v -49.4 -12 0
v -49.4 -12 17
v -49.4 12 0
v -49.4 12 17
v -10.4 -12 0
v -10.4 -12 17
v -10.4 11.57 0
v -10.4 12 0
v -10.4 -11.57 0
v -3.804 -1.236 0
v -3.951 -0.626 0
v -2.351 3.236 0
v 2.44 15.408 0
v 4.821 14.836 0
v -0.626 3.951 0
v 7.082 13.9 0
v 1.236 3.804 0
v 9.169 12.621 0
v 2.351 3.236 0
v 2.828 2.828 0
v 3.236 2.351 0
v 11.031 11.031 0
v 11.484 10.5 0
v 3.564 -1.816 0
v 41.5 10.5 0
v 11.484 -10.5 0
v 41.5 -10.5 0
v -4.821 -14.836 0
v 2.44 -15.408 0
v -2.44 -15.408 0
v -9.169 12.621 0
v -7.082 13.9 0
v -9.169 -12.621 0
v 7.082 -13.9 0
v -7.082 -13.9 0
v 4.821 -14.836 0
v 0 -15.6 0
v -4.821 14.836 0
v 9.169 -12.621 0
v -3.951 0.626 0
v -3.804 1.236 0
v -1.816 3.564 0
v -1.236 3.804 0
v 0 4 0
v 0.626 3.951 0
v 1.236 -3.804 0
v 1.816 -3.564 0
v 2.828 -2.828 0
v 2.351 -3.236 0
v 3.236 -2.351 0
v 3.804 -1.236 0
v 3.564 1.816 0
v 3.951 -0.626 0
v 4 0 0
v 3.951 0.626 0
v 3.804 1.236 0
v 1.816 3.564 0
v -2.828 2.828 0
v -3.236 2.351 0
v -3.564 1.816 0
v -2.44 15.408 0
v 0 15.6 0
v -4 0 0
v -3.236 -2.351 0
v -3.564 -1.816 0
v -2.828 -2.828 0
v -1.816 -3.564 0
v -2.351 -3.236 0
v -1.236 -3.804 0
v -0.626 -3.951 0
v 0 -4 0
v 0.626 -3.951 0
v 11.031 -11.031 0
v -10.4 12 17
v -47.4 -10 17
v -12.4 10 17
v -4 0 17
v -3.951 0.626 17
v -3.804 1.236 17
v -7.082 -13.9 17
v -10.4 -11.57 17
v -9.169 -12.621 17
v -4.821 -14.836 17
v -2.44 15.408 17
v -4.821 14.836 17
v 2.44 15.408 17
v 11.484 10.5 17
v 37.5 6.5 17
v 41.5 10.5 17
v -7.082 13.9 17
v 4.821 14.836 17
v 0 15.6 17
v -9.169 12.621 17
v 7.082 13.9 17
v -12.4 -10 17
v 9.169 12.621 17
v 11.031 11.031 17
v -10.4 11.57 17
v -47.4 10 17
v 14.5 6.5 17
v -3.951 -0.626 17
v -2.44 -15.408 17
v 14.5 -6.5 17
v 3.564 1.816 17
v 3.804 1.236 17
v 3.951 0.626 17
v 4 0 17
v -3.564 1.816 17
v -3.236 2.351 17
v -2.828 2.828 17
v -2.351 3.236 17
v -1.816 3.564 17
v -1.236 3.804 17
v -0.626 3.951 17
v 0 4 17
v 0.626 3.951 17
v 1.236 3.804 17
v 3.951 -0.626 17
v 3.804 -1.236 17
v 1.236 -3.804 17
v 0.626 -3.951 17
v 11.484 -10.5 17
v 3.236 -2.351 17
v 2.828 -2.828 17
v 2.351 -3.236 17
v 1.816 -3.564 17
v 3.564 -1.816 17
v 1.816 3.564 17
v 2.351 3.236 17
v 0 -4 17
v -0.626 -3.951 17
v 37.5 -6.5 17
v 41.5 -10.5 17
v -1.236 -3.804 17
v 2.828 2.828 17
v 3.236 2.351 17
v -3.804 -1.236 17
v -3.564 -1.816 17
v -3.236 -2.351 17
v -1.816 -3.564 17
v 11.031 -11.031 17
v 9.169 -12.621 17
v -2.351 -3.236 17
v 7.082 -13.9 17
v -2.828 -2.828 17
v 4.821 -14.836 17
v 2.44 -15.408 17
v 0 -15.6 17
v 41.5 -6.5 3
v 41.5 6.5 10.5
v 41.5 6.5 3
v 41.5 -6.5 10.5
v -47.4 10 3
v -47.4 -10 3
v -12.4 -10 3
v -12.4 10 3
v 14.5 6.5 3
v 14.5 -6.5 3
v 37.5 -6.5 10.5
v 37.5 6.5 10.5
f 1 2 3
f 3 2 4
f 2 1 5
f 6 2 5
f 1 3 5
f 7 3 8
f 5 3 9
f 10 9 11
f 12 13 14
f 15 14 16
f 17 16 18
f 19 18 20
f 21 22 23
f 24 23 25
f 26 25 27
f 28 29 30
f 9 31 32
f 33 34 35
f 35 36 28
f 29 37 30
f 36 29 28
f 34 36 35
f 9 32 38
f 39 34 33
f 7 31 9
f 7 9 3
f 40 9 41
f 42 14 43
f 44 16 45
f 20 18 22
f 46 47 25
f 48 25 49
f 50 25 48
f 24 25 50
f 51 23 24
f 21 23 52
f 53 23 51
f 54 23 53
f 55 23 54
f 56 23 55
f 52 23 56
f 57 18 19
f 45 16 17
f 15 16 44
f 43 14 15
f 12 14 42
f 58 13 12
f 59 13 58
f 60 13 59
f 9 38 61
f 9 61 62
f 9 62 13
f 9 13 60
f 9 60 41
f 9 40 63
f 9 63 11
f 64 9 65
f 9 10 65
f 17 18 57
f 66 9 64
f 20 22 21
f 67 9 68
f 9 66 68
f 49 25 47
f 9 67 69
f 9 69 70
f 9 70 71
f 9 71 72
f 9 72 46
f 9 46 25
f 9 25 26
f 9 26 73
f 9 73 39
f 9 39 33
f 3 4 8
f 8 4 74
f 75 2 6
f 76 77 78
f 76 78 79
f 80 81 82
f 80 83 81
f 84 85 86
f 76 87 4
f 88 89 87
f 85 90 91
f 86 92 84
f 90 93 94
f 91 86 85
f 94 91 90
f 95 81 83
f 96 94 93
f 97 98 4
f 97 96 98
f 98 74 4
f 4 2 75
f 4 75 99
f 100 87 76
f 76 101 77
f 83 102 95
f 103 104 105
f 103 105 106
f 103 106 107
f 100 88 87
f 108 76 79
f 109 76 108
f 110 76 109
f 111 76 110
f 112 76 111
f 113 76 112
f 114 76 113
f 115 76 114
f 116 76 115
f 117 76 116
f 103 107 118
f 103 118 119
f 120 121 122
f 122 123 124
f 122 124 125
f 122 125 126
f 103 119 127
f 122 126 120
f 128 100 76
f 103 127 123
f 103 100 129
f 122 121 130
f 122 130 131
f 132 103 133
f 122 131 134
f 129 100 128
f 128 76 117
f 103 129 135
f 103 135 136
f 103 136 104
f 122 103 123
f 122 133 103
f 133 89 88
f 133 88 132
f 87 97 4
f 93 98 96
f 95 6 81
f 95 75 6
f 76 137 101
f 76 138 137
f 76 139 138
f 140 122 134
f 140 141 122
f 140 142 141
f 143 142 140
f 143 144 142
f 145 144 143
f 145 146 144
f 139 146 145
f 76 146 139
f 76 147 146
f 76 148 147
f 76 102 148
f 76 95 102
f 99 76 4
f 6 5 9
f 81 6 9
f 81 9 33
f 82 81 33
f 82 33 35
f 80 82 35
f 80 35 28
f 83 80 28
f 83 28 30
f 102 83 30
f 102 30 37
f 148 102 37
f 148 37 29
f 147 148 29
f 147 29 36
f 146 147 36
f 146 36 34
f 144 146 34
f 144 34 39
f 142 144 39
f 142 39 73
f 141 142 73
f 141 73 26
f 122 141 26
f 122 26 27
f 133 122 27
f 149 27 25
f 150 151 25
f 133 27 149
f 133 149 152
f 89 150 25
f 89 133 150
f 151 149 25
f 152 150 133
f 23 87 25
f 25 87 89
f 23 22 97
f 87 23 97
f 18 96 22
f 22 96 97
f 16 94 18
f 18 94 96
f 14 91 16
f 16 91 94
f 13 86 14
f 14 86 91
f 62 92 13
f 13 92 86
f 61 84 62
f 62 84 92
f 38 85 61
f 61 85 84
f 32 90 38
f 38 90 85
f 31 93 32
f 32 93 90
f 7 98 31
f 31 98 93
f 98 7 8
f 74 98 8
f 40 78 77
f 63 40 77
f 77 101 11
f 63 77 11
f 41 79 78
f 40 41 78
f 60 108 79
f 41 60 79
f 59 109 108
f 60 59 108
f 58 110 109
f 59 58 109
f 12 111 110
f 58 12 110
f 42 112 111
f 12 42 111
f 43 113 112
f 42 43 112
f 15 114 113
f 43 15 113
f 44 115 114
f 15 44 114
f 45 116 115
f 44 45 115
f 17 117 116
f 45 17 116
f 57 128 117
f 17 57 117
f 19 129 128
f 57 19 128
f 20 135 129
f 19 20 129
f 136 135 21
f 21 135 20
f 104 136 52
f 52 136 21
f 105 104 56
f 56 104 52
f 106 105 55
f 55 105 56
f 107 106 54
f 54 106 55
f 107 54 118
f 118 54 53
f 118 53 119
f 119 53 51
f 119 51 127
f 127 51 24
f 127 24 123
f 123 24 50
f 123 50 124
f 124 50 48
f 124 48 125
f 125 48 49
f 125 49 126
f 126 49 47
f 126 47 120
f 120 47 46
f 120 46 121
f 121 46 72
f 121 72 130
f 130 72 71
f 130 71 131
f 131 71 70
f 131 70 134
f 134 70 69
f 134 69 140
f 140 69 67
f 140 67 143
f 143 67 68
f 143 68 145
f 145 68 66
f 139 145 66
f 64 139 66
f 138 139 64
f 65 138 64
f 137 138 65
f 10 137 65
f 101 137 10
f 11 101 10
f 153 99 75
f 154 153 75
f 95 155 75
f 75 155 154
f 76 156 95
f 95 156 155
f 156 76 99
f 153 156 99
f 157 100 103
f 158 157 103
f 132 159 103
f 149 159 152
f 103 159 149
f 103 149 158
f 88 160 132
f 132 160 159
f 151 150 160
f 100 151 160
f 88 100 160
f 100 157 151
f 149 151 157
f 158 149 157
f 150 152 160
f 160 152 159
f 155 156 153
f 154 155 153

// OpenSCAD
module UltraSoundBase() {
  // box dimensions for servo

  w=23; 
  d=13;
  h=15;

  // box dimensions for Arduino Pro Mini

  w2=35;
  d2=20;
  
  difference() {
    union() {
      cylinder($fn=40,r=d*1.2,h=h+2);

      translate([d*2,0,h/2+1])
      cube([w+8,d+8,h+2],center=true);

      translate([-d*2.3,0,h/2+1])
      cube([w2+4,d2+4,h+2],center=true);

    }
    union() {
      translate([0,0,-1])
      cylinder($fn=40,r=4,h=h+4);

      translate([d*2,0,h/2+3])
      cube([w,d,h],center=true);

      translate([d*3,0,h/4+3])
      cube([w,d,h/2],center=true);

      translate([-d*2.3,0,h/2+3])
      cube([w2,d2,h],center=true);
    }
  }
}

UltraSoundBase();
